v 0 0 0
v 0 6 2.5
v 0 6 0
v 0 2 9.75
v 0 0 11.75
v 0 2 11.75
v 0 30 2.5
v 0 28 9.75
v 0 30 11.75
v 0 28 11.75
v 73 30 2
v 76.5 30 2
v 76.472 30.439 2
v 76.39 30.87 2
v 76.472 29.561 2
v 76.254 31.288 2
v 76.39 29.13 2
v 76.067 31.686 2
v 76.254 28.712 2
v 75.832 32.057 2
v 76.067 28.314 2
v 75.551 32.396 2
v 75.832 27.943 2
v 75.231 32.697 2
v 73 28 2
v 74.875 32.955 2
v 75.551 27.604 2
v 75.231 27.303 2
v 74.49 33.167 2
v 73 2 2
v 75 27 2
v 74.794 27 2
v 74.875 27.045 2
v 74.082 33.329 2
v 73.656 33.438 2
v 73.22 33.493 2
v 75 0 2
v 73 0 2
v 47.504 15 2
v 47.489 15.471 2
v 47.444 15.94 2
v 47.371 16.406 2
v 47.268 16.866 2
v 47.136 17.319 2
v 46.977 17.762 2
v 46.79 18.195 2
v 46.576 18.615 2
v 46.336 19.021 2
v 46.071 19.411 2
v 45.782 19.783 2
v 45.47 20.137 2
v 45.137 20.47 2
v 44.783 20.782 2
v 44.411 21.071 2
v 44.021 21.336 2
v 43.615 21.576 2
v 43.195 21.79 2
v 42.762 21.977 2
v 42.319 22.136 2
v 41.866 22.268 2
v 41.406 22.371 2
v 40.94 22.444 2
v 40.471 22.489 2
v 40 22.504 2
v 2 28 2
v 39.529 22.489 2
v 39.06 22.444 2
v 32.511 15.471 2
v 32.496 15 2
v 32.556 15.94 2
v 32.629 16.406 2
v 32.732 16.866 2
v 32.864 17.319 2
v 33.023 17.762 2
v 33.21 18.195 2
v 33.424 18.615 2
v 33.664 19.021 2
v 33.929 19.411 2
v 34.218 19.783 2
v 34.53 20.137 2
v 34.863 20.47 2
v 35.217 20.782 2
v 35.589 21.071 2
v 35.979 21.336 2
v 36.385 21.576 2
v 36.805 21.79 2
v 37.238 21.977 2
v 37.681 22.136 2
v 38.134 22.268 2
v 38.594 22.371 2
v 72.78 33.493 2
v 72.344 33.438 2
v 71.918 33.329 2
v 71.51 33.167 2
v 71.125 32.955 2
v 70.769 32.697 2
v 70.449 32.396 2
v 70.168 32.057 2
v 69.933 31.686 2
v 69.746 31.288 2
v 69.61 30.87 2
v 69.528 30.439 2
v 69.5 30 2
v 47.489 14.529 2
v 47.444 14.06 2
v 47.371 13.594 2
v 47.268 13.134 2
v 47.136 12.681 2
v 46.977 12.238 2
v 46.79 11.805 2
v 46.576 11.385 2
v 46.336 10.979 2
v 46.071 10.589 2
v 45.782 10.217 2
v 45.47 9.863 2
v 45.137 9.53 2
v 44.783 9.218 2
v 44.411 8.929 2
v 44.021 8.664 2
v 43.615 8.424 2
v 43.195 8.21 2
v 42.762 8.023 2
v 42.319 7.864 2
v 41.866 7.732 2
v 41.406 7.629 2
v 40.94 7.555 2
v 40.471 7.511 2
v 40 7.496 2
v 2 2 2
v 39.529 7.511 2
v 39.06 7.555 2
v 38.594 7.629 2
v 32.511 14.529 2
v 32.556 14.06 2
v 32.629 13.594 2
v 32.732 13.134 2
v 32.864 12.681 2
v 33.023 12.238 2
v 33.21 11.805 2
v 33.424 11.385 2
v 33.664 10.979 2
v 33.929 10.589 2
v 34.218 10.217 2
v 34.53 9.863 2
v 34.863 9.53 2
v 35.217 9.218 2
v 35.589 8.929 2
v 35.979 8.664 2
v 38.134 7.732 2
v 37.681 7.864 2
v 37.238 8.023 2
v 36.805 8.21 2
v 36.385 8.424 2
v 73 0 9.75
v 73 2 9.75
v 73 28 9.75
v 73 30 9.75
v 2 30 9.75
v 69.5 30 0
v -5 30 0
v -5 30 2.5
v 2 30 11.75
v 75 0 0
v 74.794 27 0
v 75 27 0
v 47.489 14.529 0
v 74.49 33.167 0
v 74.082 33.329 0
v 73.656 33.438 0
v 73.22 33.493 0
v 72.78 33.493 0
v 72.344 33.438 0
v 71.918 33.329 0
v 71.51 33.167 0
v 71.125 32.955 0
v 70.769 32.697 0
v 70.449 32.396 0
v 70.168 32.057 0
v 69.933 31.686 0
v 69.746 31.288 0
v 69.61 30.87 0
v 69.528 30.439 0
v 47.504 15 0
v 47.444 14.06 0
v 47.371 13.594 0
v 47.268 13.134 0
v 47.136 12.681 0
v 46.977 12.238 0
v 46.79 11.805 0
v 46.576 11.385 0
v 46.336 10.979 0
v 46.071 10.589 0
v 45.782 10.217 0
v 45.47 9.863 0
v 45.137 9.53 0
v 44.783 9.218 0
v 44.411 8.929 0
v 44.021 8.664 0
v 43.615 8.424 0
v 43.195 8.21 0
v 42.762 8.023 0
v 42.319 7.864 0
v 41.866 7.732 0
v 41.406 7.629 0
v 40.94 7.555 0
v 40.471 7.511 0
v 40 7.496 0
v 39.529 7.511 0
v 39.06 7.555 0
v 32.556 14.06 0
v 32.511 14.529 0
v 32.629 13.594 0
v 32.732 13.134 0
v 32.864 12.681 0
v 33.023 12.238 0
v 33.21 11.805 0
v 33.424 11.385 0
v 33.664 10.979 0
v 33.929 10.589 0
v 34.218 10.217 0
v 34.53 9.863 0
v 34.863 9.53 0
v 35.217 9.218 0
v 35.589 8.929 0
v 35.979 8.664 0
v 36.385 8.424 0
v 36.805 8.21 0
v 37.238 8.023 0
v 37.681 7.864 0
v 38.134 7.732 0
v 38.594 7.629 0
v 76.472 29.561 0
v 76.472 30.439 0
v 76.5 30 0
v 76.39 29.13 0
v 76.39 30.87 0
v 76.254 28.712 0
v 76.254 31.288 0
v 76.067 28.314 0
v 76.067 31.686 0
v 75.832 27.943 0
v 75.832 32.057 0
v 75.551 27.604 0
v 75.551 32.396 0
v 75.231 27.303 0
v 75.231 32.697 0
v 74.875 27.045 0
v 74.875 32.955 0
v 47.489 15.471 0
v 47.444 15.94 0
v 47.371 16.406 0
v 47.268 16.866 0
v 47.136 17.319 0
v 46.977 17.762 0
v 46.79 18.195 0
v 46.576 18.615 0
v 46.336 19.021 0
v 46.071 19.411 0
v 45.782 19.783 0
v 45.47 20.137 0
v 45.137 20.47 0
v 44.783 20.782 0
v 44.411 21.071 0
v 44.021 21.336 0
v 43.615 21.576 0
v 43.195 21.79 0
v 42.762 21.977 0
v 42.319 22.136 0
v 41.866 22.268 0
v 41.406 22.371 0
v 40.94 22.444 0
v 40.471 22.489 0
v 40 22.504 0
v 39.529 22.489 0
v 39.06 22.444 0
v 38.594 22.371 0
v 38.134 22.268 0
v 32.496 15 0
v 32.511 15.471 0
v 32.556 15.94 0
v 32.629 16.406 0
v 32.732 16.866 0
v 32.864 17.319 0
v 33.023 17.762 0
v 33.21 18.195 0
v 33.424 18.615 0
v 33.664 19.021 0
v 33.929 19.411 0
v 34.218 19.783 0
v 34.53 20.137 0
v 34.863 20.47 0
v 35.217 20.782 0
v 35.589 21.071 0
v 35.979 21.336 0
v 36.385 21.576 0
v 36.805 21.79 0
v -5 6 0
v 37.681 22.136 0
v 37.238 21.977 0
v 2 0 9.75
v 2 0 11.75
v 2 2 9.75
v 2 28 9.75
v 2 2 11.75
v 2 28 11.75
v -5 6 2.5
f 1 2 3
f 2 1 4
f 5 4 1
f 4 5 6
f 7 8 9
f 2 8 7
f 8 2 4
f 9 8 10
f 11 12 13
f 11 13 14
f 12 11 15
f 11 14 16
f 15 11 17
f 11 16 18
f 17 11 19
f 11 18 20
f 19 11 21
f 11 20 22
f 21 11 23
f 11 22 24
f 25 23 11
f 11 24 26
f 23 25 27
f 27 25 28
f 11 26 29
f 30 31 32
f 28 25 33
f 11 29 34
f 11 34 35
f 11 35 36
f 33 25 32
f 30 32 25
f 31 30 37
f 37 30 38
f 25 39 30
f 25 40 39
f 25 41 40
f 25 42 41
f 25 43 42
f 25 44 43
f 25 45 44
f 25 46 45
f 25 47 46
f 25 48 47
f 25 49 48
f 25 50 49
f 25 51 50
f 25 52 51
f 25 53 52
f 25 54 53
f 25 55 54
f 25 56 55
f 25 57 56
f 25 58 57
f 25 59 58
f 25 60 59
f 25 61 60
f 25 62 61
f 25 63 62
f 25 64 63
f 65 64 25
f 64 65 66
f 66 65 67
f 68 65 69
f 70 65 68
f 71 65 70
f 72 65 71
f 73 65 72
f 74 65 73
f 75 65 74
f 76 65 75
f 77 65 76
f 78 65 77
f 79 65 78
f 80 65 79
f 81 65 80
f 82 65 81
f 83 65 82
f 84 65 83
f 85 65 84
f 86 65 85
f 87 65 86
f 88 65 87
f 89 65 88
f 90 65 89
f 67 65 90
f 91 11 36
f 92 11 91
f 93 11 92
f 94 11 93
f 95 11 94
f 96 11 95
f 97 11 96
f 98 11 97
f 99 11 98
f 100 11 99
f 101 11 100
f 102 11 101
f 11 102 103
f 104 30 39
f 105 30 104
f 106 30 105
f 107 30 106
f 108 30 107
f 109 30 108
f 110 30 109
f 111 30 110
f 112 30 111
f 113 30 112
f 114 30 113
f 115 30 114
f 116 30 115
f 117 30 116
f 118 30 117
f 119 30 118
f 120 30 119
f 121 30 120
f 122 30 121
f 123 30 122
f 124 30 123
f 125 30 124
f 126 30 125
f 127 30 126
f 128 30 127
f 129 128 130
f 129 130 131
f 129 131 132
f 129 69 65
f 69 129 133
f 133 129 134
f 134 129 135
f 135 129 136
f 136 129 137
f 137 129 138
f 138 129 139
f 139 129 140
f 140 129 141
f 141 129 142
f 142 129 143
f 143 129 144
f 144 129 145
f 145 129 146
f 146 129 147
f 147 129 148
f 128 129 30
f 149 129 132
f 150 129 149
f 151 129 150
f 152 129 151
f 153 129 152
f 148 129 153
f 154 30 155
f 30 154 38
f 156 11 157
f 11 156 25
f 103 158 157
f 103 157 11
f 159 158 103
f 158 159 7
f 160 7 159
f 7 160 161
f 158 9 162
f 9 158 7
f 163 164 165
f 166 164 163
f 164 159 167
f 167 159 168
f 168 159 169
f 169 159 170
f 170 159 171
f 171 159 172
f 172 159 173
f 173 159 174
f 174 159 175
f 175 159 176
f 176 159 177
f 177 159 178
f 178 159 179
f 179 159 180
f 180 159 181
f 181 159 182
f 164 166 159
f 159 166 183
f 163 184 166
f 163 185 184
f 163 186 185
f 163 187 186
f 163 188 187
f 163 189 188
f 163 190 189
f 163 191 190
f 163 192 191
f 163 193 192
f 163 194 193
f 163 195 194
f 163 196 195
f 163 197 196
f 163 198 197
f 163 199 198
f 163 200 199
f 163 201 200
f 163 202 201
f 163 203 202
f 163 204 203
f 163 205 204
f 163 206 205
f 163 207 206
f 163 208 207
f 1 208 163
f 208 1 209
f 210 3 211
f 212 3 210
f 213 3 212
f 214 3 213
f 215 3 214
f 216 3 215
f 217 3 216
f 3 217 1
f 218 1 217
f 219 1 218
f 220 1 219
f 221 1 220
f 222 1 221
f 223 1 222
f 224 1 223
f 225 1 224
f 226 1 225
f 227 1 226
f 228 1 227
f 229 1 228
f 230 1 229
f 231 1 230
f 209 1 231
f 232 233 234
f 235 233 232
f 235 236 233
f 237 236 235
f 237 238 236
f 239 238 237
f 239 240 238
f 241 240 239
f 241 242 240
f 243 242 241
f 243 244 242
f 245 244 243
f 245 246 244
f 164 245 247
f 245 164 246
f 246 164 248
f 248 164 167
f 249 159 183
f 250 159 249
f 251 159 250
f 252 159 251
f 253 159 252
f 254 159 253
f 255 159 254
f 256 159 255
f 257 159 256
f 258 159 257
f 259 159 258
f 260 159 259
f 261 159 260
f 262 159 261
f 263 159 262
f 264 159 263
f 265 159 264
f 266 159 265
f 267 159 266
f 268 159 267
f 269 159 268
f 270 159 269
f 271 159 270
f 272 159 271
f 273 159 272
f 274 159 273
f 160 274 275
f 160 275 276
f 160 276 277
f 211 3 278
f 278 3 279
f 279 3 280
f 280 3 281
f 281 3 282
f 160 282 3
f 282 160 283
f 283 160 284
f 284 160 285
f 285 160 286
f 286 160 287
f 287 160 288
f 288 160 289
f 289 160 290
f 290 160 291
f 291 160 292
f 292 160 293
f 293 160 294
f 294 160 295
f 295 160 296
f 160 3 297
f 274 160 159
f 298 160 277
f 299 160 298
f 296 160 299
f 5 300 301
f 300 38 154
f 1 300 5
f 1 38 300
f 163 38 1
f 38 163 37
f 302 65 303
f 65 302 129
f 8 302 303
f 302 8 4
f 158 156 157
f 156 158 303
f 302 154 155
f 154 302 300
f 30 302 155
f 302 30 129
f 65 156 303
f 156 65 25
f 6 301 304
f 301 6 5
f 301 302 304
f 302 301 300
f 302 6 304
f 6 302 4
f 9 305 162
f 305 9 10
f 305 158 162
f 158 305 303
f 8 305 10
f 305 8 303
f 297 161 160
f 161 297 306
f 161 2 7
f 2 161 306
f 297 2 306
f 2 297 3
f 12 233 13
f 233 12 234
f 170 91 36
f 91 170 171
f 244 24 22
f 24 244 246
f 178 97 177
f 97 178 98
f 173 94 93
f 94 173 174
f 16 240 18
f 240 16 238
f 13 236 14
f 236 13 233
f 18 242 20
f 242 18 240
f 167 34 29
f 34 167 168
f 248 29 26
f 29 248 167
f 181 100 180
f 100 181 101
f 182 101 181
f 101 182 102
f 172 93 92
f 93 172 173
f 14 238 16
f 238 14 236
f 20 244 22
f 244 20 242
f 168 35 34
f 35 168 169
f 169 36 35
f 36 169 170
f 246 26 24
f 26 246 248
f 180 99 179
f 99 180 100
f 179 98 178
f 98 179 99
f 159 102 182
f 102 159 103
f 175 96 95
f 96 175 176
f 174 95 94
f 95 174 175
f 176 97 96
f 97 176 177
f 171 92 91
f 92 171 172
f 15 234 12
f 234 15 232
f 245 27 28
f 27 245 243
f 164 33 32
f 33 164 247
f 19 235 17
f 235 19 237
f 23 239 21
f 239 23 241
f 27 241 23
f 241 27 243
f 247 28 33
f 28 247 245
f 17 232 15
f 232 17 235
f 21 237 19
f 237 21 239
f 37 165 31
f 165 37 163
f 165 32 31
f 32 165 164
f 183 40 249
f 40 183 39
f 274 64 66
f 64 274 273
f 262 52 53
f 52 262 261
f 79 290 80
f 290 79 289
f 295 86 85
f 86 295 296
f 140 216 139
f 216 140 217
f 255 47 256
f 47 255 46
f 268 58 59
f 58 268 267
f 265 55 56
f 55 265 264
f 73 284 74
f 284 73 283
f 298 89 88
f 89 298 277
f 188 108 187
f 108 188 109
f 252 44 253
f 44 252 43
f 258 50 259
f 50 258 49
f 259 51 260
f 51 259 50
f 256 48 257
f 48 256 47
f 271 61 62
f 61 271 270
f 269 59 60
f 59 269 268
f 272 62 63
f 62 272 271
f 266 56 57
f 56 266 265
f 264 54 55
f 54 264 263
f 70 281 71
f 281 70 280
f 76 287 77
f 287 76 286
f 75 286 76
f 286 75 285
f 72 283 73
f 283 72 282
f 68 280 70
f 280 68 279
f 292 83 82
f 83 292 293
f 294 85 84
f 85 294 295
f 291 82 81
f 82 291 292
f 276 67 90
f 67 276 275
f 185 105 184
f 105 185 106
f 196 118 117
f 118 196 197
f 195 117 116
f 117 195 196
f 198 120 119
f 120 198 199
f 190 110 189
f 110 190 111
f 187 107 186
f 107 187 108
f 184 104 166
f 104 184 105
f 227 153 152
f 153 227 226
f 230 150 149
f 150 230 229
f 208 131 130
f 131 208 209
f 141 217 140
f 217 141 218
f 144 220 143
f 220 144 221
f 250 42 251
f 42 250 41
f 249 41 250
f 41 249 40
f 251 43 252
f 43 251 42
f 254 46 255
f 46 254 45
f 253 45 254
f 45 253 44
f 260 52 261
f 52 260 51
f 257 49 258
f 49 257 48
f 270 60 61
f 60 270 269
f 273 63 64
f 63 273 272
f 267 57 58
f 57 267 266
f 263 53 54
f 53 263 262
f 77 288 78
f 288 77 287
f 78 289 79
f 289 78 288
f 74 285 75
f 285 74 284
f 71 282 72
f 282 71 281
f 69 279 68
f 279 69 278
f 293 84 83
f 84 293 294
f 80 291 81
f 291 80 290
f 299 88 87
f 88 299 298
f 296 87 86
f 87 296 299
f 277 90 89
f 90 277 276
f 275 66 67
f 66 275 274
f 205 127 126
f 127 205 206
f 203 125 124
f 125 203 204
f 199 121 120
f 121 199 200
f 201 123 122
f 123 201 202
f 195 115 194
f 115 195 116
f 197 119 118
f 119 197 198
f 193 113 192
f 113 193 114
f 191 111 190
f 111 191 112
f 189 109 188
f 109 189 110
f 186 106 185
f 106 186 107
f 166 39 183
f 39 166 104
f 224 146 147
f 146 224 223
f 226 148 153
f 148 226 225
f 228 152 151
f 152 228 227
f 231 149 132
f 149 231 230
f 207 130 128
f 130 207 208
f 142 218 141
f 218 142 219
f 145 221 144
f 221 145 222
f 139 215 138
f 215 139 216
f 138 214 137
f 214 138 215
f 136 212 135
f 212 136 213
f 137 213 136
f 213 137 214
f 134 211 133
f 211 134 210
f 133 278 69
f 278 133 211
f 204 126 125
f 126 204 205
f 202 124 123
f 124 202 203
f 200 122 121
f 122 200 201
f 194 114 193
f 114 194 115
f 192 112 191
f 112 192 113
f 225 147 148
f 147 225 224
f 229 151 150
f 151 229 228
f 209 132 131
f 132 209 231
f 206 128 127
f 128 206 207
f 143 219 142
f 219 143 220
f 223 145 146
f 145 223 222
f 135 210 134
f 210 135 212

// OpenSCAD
// NoBlo -- Wind Mitigation Device
difference() {
    union() {
        // NoBlo Base
        cube([73,30,2]);
        
        // NoBlo Sides
        translate([2, 0, 1.75]) {
            color([1,0,0])
            cube([71,2,8]);
        }
        translate([2, 28, 1.75]) {
            color([0,0,1])
            cube([71,2,8]);
        }
       // NoBlo Rear
       translate([0, 0, 1.75]) {
             color([0,1,0])
             cube([2,30,8]);
       }
      
      // Guide Cubes
       translate([0,0,9.75]) {
            color([0,0,0])
            cube([2,2,2]);     
      }
      translate([0,28,9.75]) {
            color([0,0,0])
            cube([2,2,2]);     
      }
          
       // Left caliper hard point
       translate([-5,6,0]) {
           color([1,0,1])
           cube([5,24,2.5]);
       }
       
       // Right caliper hard point circle
       translate([73,30,0]) {
           color([0,1,1])
           cylinder(h=2, d=7, $fn=50);
       }
       
       // Right caliper hard point rectangle extension
       translate([73,0,0]) {
           color([0,1,0])
           cube([2,27,2]);
       }
   }
    // Slide Well
    translate([40,15,-1]) cylinder_outer(8,7.5,100);
    // Objective Hole
    translate([40,15,24]) cylinder_outer(5,9,100);
}

module cylinder_outer(height,radius,fn){
   fudge = 1/cos(180/fn);
   cylinder(h=height,r=radius*fudge,$fn=fn);
    }
